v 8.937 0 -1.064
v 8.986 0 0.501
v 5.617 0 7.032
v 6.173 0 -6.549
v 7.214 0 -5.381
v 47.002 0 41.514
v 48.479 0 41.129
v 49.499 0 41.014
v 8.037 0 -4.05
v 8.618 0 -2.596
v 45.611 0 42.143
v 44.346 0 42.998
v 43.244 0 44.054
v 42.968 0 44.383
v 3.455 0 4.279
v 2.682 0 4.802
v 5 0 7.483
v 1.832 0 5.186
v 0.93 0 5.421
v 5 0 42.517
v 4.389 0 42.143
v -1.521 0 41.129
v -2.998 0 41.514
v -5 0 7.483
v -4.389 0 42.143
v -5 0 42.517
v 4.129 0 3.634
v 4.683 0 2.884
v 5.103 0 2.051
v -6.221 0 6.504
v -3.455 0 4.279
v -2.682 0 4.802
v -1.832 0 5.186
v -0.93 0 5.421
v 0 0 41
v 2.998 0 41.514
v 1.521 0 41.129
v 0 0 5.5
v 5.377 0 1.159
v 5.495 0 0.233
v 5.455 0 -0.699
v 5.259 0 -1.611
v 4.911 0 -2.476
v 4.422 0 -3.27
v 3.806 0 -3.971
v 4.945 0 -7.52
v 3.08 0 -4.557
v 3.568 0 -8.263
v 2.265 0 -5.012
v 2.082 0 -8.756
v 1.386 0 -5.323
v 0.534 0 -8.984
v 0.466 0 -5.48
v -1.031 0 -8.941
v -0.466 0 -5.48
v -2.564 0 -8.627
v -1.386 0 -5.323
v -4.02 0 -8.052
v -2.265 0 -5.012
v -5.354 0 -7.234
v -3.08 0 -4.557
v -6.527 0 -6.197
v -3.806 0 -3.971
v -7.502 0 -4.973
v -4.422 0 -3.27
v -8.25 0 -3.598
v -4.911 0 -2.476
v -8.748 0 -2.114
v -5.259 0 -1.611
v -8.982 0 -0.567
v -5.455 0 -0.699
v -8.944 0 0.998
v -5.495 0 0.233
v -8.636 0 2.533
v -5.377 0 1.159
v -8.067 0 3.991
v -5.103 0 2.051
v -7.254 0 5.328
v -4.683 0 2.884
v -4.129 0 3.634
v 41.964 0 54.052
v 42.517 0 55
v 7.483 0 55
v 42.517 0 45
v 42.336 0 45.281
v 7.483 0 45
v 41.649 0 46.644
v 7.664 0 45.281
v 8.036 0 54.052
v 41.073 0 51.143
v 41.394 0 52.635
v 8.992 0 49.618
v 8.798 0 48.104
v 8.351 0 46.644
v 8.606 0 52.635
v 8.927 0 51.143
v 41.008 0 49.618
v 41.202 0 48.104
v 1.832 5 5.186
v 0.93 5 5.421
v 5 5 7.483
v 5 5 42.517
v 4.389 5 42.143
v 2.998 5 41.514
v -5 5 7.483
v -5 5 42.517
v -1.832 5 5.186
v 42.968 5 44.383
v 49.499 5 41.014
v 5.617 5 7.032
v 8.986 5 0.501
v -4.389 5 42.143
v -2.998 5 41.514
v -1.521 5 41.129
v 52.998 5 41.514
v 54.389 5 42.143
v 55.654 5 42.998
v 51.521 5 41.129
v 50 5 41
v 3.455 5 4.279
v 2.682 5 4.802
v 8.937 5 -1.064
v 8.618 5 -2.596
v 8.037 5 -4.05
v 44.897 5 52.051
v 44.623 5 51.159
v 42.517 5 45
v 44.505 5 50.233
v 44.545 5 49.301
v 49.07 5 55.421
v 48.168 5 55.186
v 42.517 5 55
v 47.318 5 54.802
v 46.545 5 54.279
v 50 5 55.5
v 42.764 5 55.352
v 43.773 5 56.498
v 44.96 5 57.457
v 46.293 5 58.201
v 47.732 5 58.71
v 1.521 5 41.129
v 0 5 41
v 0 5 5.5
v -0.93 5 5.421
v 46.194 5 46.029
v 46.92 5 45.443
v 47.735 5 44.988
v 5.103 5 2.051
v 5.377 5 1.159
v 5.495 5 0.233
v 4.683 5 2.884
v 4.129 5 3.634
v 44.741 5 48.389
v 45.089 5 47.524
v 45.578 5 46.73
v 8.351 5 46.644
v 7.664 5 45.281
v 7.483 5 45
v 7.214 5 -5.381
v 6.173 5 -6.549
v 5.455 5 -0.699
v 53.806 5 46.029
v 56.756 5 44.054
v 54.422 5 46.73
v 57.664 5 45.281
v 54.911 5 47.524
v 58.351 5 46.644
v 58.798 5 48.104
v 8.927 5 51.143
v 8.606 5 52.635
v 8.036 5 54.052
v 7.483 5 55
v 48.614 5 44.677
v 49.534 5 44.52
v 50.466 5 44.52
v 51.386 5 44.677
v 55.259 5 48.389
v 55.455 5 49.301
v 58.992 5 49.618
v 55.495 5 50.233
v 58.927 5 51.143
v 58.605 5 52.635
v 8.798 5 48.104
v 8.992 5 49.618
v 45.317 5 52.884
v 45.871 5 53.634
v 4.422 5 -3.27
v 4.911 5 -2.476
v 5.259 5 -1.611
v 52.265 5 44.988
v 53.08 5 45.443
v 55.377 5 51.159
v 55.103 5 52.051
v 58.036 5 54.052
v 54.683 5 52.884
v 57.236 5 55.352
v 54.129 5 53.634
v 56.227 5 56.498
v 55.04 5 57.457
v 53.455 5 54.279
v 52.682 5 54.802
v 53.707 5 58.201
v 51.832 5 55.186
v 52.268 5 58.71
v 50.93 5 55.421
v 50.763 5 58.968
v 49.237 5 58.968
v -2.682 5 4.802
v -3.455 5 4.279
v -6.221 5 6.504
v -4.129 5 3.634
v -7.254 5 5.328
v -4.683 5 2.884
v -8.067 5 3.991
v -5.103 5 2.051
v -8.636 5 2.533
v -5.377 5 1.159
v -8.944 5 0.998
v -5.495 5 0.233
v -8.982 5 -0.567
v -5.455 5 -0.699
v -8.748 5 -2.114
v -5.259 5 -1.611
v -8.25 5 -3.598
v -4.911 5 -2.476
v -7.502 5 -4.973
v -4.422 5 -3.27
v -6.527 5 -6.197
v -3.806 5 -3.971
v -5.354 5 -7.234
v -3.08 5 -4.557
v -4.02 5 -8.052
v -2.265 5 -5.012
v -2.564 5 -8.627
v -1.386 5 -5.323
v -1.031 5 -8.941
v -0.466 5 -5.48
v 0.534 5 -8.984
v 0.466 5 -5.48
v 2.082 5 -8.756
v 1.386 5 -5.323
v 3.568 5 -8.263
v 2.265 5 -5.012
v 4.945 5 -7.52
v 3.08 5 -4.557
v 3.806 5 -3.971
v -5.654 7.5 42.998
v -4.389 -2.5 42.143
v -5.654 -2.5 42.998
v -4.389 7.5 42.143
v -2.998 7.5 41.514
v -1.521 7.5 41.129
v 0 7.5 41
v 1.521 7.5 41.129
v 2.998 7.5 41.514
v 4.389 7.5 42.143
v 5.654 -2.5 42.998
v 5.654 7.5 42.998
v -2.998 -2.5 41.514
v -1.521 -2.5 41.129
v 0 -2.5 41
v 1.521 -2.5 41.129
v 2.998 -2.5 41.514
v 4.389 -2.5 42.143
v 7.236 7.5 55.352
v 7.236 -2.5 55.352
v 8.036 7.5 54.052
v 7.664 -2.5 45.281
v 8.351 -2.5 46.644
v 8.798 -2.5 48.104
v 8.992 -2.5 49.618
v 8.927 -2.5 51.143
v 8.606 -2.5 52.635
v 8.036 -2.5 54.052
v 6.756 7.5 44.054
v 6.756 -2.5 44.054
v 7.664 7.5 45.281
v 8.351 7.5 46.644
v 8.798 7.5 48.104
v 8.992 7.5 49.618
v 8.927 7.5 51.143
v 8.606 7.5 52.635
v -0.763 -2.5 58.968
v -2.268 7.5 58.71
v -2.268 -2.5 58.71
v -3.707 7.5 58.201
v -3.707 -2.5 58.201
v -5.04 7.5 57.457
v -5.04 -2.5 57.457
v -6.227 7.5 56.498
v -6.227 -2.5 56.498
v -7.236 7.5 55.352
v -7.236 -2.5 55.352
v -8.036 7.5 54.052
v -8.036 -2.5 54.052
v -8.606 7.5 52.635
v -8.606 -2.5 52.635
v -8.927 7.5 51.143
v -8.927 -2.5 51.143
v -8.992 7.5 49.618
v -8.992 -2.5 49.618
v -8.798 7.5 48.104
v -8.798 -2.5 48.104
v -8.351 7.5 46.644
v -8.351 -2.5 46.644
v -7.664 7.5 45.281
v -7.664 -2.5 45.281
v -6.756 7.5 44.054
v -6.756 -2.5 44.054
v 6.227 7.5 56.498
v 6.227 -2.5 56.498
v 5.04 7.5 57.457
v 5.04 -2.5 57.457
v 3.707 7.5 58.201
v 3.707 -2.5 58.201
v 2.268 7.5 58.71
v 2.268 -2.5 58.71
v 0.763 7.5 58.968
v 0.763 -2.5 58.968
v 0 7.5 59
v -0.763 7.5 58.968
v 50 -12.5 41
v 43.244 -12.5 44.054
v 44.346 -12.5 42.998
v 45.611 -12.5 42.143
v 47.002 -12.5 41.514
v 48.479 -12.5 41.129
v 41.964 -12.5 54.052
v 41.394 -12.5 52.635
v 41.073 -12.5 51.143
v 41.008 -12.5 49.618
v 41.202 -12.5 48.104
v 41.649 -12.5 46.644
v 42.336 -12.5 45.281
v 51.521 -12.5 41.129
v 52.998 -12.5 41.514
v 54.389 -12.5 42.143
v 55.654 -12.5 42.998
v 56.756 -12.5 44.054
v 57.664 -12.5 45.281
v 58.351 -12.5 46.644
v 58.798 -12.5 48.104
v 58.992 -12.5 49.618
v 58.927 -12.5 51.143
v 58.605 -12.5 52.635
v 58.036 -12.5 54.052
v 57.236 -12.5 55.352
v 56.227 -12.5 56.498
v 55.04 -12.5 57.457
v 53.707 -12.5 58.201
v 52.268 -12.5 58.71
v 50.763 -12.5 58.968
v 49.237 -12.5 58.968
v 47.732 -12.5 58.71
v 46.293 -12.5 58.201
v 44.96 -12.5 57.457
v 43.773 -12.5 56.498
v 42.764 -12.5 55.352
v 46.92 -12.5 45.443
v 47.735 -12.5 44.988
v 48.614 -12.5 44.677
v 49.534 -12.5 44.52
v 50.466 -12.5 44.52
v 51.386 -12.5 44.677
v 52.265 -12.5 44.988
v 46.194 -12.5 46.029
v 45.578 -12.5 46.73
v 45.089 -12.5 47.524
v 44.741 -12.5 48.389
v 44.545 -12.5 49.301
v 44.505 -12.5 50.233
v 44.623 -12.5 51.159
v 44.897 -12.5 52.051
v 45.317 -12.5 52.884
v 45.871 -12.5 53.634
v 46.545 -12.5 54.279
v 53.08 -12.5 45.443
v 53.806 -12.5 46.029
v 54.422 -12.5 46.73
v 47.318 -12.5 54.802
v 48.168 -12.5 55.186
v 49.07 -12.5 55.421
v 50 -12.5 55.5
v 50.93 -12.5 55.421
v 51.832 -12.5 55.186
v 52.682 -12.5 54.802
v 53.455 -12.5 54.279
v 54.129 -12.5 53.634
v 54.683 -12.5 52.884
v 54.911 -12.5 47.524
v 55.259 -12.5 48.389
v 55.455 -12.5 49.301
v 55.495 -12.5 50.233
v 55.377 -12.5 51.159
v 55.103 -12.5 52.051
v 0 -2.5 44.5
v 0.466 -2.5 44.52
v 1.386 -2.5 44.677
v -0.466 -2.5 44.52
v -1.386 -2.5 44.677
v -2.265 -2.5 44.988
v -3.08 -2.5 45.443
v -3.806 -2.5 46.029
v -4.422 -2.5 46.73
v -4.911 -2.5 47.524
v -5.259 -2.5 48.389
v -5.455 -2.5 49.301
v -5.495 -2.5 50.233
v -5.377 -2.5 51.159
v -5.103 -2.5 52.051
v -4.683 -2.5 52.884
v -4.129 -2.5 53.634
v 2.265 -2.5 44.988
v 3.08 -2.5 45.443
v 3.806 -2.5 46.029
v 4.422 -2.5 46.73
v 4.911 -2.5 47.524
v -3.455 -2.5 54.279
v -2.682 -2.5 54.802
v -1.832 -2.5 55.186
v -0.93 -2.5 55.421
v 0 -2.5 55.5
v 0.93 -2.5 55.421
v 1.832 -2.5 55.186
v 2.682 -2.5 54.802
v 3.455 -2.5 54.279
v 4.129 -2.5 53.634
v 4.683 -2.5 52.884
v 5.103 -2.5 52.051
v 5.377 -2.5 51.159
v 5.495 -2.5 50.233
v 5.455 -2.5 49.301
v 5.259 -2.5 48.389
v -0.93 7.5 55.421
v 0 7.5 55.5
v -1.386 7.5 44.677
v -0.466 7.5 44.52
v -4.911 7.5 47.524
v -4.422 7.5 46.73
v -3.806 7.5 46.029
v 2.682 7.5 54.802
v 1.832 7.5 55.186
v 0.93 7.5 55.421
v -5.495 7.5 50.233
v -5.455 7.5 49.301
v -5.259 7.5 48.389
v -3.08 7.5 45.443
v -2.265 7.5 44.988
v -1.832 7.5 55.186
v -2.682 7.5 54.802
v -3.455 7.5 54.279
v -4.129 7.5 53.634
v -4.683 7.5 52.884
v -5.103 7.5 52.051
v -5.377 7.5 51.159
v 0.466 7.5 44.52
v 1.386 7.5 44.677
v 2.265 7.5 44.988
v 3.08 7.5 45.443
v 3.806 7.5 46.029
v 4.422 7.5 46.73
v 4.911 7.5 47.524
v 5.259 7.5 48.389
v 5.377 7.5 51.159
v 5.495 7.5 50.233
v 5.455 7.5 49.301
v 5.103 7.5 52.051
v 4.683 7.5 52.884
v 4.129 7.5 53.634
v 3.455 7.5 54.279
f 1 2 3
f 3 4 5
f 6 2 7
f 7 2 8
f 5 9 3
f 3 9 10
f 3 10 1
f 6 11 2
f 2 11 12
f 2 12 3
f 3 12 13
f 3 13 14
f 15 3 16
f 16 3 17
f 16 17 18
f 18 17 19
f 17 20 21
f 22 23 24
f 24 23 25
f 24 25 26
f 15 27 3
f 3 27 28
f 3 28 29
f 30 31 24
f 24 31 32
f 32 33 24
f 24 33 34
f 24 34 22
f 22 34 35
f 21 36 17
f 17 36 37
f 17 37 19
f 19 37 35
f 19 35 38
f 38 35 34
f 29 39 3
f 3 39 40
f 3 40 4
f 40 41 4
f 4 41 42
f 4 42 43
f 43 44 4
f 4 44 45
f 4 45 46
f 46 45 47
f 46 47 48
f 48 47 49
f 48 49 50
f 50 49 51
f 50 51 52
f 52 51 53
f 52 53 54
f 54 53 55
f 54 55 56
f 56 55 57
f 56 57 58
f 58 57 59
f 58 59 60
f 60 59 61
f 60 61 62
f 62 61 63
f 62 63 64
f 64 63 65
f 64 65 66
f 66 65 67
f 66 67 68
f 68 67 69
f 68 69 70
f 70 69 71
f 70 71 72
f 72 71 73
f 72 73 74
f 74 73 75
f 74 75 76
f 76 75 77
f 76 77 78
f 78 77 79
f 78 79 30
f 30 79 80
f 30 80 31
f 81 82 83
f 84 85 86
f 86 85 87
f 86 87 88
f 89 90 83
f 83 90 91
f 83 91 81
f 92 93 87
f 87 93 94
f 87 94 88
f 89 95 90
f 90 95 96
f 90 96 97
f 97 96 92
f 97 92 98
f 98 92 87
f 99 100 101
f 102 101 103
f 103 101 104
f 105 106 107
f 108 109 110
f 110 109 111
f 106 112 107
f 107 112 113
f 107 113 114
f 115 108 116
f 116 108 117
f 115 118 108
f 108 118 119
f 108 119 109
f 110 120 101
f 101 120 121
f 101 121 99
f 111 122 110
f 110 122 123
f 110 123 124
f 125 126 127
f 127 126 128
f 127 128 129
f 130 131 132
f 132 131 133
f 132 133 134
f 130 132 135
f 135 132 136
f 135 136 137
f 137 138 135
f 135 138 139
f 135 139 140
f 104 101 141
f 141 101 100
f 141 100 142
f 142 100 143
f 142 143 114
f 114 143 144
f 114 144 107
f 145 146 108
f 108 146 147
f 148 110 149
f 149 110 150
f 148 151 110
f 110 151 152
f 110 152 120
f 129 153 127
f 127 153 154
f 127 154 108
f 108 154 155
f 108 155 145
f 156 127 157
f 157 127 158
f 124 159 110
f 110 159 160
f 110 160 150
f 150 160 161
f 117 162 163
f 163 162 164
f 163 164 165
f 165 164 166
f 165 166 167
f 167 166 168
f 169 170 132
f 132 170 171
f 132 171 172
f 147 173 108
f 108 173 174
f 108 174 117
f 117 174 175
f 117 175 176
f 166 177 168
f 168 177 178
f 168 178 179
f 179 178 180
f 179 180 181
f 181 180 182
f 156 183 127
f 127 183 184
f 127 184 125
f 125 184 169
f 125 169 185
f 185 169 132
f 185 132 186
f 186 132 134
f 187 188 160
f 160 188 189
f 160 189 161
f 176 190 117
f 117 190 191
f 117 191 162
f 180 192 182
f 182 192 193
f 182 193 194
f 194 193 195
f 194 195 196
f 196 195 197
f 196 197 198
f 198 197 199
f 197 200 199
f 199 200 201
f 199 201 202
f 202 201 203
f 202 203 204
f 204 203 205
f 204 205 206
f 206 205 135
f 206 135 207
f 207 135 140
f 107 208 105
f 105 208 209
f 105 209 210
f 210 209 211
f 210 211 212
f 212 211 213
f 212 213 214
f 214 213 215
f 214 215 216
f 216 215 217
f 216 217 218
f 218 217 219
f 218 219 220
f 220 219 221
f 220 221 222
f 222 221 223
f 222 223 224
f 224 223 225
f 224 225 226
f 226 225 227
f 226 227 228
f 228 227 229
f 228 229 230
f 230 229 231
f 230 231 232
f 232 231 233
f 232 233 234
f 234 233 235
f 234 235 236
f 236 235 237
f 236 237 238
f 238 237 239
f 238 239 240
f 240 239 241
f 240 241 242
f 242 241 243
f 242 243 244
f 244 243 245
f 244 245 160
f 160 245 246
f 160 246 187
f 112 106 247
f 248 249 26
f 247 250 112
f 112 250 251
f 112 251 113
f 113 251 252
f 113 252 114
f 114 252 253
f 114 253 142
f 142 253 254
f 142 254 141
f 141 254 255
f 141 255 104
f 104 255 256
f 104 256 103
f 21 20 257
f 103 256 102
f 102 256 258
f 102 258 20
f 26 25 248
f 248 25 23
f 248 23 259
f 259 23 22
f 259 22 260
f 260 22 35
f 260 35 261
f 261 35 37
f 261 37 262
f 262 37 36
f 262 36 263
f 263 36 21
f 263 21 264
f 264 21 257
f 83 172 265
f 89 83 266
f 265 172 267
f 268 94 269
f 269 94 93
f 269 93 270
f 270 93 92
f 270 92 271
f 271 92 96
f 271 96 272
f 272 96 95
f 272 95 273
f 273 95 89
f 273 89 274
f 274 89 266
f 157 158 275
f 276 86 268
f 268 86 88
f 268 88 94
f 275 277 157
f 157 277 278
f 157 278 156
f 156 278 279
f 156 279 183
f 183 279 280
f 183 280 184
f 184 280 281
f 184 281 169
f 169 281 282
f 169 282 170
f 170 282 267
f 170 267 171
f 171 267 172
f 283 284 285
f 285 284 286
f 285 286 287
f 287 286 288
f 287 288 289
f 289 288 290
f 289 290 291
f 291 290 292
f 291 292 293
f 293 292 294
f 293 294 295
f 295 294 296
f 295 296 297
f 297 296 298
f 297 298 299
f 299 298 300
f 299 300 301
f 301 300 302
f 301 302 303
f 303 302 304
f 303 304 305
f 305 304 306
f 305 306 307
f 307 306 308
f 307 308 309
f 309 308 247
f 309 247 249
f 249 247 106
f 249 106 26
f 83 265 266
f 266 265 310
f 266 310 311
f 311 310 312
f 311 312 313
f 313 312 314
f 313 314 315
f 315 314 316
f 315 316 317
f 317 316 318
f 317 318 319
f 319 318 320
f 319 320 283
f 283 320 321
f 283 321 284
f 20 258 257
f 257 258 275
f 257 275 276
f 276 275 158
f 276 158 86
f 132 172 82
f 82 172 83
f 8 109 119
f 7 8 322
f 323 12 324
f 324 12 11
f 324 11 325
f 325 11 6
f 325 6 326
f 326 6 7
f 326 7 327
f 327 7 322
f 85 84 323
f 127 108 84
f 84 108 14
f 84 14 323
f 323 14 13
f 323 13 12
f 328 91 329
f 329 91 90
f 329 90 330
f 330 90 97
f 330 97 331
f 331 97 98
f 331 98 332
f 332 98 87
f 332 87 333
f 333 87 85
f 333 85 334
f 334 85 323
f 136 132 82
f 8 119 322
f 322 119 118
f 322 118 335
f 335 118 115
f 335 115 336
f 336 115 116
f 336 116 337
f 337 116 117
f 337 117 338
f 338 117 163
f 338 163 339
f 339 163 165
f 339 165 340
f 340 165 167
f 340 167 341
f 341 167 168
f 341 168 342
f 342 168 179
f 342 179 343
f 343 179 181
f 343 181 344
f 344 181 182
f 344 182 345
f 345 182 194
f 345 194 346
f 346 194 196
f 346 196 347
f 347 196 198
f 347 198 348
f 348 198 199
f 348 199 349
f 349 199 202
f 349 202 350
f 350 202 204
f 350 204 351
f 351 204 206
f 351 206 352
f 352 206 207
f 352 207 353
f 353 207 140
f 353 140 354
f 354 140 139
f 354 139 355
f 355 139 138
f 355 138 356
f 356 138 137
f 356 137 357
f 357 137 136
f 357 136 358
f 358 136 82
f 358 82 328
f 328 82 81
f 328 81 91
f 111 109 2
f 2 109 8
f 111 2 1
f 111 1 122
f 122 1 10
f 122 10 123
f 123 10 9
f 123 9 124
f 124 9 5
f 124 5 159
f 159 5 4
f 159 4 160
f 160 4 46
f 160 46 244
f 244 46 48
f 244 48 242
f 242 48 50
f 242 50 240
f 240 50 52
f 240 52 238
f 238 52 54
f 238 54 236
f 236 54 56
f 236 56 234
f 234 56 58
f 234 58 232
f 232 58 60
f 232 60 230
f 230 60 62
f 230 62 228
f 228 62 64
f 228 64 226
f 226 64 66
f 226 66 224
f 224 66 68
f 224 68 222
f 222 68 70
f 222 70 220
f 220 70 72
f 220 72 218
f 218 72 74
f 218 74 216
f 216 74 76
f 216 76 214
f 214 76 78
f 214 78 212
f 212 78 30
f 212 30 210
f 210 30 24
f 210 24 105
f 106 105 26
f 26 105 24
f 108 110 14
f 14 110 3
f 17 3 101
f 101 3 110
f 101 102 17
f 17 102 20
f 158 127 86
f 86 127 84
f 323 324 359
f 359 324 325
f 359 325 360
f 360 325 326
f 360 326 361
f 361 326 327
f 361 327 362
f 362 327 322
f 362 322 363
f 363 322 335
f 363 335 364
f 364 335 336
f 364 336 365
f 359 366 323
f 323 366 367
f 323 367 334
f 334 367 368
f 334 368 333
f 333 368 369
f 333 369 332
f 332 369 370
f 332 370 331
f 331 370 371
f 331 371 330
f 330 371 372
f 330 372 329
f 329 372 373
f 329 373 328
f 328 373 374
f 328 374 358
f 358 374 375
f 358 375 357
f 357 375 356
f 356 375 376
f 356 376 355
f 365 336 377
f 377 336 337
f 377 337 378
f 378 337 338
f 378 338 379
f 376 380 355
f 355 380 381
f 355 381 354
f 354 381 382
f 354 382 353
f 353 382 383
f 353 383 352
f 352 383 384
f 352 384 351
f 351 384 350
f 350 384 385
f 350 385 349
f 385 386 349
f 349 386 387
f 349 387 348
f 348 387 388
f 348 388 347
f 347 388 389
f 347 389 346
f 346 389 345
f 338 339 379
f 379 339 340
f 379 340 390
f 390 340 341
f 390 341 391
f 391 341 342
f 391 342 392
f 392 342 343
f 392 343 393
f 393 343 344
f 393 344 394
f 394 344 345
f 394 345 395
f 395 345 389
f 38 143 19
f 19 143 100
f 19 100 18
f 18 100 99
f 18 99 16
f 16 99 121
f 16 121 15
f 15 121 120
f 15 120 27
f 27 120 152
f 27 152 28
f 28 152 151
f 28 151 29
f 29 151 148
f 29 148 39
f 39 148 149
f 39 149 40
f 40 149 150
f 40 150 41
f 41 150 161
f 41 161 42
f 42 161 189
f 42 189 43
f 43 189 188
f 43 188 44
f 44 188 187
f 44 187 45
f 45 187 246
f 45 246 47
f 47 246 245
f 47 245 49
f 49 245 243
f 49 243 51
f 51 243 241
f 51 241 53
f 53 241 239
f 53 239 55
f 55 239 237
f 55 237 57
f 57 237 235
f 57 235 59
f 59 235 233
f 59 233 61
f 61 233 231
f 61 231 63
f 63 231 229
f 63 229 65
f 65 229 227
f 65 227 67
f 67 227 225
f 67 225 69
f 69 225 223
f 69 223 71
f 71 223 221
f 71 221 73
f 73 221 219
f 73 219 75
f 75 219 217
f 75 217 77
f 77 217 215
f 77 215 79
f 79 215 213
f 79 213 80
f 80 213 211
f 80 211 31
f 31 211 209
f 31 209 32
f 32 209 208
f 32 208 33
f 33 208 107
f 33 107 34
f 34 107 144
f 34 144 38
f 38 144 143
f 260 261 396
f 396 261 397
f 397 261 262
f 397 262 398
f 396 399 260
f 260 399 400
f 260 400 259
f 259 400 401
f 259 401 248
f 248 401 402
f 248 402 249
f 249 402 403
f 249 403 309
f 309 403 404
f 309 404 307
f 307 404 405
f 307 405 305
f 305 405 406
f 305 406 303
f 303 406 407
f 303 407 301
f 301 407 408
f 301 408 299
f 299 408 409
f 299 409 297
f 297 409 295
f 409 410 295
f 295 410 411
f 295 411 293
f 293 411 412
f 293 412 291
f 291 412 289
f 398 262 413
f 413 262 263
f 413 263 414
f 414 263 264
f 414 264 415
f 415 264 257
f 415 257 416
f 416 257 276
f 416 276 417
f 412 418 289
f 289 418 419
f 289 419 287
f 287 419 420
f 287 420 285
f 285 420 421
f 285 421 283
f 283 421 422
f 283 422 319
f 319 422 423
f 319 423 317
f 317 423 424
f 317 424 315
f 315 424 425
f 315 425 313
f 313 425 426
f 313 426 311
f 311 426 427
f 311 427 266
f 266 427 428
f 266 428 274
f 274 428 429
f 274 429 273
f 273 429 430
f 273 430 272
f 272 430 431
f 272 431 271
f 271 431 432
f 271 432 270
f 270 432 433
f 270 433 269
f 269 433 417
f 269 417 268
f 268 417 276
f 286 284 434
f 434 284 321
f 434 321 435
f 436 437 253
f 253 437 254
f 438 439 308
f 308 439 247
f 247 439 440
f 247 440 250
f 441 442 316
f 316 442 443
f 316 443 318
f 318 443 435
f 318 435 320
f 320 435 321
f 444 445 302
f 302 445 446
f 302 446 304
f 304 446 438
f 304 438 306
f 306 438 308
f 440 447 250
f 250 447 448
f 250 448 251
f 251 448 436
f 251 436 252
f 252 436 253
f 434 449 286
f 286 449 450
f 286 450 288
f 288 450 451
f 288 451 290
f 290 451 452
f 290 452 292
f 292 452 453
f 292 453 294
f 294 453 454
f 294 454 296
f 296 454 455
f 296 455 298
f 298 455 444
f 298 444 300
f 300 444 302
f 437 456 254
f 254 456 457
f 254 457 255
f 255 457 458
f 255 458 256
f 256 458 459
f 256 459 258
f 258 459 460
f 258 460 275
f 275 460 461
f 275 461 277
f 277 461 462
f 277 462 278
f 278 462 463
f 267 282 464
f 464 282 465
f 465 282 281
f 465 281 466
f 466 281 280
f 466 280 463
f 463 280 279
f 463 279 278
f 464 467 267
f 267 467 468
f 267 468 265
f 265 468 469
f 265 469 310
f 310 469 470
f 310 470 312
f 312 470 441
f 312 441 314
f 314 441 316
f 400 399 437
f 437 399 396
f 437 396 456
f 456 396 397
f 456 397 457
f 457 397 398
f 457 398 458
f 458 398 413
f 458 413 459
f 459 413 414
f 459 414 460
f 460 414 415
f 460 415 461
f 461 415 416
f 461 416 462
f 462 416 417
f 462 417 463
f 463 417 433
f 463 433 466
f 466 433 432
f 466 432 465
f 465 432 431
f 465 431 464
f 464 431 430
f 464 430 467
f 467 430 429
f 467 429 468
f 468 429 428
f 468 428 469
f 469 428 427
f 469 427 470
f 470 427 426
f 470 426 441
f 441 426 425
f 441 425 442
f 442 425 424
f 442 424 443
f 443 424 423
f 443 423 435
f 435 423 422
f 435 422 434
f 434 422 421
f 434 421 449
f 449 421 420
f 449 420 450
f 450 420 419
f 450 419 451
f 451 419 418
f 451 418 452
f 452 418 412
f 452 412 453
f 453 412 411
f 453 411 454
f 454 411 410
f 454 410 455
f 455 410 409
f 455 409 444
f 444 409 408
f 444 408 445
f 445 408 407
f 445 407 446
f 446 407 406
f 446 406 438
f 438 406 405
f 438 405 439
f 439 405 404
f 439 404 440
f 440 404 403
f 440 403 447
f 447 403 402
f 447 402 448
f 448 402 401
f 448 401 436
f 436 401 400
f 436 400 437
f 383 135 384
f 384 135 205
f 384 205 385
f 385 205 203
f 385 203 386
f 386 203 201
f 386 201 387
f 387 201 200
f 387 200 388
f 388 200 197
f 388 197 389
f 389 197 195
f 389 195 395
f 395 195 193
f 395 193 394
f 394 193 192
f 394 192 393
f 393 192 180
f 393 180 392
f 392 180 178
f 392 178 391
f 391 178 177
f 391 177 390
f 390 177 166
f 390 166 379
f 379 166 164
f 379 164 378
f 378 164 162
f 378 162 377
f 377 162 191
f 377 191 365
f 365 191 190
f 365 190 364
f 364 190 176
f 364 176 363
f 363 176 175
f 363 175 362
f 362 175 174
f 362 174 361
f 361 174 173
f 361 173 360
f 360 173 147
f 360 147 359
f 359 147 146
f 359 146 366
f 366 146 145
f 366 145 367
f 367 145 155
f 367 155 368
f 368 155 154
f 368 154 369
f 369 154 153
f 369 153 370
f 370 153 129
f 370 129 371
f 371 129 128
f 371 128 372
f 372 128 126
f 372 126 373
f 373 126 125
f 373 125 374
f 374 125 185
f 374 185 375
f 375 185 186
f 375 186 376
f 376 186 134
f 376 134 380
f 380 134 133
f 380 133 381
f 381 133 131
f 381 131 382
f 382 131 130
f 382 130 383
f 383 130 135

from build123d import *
from build123d.topology import SkipClean

# Parameters (mm, degrees)
BOSS_EXTRUDE1_DEPTH = 5
BOSS_EXTRUDE4_START = 12.5
SKETCH6_R           = 9
BOSS_EXTRUDE4_DEPTH = 12.5
SKETCH2_R           = 5.5
CUT_EXTRUDE1_DEPTH  = 5
BOSS_EXTRUDE2_START = 2.5
SKETCH3_R           = 9
BOSS_EXTRUDE2_DEPTH = 2.5
SKETCH4_R           = 9
BOSS_EXTRUDE3_DEPTH = 2.5
SKETCH5_R           = 5.5
CUT_EXTRUDE2_DEPTH  = 86.802097876
SKETCH7_R           = 5.5
CUT_EXTRUDE3_DEPTH  = 86.254032163


with BuildPart() as part:
    # Sketch1 → Boss-Extrude1 (new body)
    with BuildSketch(Plane(origin=(0, 0, 0), x_dir=(1, 0, 0), z_dir=(0, 1, 0))):
        with BuildLine():
            Line((-5, -7.483314774), (-5, -42.516685226))
            ThreePointArc((-5, -42.516685226), (-6.363961031, -56.363961031), (7.483314774, -55))
            Line((7.483314774, -55), (42.516685226, -55))
            ThreePointArc((42.516685226, -55), (58.052258964, -54.020090244), (49.499224197, -41.013942823))
            Line((49.499224197, -41.013942823), (8.986057177, -0.500775803))
            ThreePointArc((8.986057177, -0.500775803), (-4.020090244, 8.052258964), (-5, -7.483314774))
        make_face()
        with BuildLine():
            Line((5, -7.483314774), (5, -42.516685226))
            ThreePointArc((5, -42.516685226), (6.363961031, -43.636038969), (7.483314774, -45))
            Line((7.483314774, -45), (42.516685226, -45))
            ThreePointArc((42.516685226, -45), (42.735948163, -44.68647472), (42.968337898, -44.382551461))
            Line((42.968337898, -44.382551461), (5.617448539, -7.031662102))
            ThreePointArc((5.617448539, -7.031662102), (5.31352528, -7.264051837), (5, -7.483314774))
        make_face(mode=Mode.SUBTRACT)
    extrude(amount=BOSS_EXTRUDE1_DEPTH)

    # Sketch6 → Boss-Extrude4 (add)
    with SkipClean():  # the faces are left unmerged after this step: merging them gives an invalid solid
        with BuildSketch(Plane.XZ.offset(BOSS_EXTRUDE4_START)):
            with Locations(Location((50, 50, 0), (0, 0, 270))):
                Circle(SKETCH6_R)
        extrude(amount=-BOSS_EXTRUDE4_DEPTH)

    # Sketch2 → Cut-Extrude1 (cut)
    with SkipClean():  # the faces are left unmerged after this step: merging them gives an invalid solid
        with BuildSketch(Plane(origin=(0, 5, 0), x_dir=(1, 0, 0), z_dir=(0, 1, 0))):
            with Locations(Location((0, 0, 0), (0, 0, 270))):
                Circle(SKETCH2_R)
        extrude(amount=-CUT_EXTRUDE1_DEPTH, mode=Mode.SUBTRACT)

    # Sketch3 → Boss-Extrude2 (add)
    with SkipClean():  # the faces are left unmerged after this step: merging them gives an invalid solid
        with BuildSketch(Plane.XZ.offset(BOSS_EXTRUDE2_START)):
            with Locations(Location((0, 50, 0), (0, 0, 270))):
                Circle(SKETCH3_R)
        extrude(amount=-BOSS_EXTRUDE2_DEPTH)

    # Sketch4 → Boss-Extrude3 (add)
    with SkipClean():  # the faces are left unmerged after this step: merging them gives an invalid solid
        with BuildSketch(Plane(origin=(0, 5, 0), x_dir=(1, 0, 0), z_dir=(0, 1, 0))):
            with Locations(Location((0, -50, 0), (0, 0, 90))):
                Circle(SKETCH4_R)
        extrude(amount=BOSS_EXTRUDE3_DEPTH)

    # Sketch5 → Cut-Extrude2 (cut, through all)
    with SkipClean():  # the faces are left unmerged after this step: merging them gives an invalid solid
        with BuildSketch(Plane(origin=(0, 7.5, 0), x_dir=(1, 0, 0), z_dir=(0, 1, 0))):
            with Locations(Location((0, -50, 0), (0, 0, 270))):
                Circle(SKETCH5_R)
        extrude(amount=-CUT_EXTRUDE2_DEPTH, mode=Mode.SUBTRACT)

    # Sketch7 → Cut-Extrude3 (cut, through all)
    with SkipClean():  # the faces are left unmerged after this step: merging them gives an invalid solid
        with BuildSketch(Plane(origin=(0, 5, 0), x_dir=(1, 0, 0), z_dir=(0, 1, 0))):
            with Locations(Location((50, -50, 0), (0, 0, 270))):
                Circle(SKETCH7_R)
        extrude(amount=-CUT_EXTRUDE3_DEPTH, mode=Mode.SUBTRACT)


solid = part.part
